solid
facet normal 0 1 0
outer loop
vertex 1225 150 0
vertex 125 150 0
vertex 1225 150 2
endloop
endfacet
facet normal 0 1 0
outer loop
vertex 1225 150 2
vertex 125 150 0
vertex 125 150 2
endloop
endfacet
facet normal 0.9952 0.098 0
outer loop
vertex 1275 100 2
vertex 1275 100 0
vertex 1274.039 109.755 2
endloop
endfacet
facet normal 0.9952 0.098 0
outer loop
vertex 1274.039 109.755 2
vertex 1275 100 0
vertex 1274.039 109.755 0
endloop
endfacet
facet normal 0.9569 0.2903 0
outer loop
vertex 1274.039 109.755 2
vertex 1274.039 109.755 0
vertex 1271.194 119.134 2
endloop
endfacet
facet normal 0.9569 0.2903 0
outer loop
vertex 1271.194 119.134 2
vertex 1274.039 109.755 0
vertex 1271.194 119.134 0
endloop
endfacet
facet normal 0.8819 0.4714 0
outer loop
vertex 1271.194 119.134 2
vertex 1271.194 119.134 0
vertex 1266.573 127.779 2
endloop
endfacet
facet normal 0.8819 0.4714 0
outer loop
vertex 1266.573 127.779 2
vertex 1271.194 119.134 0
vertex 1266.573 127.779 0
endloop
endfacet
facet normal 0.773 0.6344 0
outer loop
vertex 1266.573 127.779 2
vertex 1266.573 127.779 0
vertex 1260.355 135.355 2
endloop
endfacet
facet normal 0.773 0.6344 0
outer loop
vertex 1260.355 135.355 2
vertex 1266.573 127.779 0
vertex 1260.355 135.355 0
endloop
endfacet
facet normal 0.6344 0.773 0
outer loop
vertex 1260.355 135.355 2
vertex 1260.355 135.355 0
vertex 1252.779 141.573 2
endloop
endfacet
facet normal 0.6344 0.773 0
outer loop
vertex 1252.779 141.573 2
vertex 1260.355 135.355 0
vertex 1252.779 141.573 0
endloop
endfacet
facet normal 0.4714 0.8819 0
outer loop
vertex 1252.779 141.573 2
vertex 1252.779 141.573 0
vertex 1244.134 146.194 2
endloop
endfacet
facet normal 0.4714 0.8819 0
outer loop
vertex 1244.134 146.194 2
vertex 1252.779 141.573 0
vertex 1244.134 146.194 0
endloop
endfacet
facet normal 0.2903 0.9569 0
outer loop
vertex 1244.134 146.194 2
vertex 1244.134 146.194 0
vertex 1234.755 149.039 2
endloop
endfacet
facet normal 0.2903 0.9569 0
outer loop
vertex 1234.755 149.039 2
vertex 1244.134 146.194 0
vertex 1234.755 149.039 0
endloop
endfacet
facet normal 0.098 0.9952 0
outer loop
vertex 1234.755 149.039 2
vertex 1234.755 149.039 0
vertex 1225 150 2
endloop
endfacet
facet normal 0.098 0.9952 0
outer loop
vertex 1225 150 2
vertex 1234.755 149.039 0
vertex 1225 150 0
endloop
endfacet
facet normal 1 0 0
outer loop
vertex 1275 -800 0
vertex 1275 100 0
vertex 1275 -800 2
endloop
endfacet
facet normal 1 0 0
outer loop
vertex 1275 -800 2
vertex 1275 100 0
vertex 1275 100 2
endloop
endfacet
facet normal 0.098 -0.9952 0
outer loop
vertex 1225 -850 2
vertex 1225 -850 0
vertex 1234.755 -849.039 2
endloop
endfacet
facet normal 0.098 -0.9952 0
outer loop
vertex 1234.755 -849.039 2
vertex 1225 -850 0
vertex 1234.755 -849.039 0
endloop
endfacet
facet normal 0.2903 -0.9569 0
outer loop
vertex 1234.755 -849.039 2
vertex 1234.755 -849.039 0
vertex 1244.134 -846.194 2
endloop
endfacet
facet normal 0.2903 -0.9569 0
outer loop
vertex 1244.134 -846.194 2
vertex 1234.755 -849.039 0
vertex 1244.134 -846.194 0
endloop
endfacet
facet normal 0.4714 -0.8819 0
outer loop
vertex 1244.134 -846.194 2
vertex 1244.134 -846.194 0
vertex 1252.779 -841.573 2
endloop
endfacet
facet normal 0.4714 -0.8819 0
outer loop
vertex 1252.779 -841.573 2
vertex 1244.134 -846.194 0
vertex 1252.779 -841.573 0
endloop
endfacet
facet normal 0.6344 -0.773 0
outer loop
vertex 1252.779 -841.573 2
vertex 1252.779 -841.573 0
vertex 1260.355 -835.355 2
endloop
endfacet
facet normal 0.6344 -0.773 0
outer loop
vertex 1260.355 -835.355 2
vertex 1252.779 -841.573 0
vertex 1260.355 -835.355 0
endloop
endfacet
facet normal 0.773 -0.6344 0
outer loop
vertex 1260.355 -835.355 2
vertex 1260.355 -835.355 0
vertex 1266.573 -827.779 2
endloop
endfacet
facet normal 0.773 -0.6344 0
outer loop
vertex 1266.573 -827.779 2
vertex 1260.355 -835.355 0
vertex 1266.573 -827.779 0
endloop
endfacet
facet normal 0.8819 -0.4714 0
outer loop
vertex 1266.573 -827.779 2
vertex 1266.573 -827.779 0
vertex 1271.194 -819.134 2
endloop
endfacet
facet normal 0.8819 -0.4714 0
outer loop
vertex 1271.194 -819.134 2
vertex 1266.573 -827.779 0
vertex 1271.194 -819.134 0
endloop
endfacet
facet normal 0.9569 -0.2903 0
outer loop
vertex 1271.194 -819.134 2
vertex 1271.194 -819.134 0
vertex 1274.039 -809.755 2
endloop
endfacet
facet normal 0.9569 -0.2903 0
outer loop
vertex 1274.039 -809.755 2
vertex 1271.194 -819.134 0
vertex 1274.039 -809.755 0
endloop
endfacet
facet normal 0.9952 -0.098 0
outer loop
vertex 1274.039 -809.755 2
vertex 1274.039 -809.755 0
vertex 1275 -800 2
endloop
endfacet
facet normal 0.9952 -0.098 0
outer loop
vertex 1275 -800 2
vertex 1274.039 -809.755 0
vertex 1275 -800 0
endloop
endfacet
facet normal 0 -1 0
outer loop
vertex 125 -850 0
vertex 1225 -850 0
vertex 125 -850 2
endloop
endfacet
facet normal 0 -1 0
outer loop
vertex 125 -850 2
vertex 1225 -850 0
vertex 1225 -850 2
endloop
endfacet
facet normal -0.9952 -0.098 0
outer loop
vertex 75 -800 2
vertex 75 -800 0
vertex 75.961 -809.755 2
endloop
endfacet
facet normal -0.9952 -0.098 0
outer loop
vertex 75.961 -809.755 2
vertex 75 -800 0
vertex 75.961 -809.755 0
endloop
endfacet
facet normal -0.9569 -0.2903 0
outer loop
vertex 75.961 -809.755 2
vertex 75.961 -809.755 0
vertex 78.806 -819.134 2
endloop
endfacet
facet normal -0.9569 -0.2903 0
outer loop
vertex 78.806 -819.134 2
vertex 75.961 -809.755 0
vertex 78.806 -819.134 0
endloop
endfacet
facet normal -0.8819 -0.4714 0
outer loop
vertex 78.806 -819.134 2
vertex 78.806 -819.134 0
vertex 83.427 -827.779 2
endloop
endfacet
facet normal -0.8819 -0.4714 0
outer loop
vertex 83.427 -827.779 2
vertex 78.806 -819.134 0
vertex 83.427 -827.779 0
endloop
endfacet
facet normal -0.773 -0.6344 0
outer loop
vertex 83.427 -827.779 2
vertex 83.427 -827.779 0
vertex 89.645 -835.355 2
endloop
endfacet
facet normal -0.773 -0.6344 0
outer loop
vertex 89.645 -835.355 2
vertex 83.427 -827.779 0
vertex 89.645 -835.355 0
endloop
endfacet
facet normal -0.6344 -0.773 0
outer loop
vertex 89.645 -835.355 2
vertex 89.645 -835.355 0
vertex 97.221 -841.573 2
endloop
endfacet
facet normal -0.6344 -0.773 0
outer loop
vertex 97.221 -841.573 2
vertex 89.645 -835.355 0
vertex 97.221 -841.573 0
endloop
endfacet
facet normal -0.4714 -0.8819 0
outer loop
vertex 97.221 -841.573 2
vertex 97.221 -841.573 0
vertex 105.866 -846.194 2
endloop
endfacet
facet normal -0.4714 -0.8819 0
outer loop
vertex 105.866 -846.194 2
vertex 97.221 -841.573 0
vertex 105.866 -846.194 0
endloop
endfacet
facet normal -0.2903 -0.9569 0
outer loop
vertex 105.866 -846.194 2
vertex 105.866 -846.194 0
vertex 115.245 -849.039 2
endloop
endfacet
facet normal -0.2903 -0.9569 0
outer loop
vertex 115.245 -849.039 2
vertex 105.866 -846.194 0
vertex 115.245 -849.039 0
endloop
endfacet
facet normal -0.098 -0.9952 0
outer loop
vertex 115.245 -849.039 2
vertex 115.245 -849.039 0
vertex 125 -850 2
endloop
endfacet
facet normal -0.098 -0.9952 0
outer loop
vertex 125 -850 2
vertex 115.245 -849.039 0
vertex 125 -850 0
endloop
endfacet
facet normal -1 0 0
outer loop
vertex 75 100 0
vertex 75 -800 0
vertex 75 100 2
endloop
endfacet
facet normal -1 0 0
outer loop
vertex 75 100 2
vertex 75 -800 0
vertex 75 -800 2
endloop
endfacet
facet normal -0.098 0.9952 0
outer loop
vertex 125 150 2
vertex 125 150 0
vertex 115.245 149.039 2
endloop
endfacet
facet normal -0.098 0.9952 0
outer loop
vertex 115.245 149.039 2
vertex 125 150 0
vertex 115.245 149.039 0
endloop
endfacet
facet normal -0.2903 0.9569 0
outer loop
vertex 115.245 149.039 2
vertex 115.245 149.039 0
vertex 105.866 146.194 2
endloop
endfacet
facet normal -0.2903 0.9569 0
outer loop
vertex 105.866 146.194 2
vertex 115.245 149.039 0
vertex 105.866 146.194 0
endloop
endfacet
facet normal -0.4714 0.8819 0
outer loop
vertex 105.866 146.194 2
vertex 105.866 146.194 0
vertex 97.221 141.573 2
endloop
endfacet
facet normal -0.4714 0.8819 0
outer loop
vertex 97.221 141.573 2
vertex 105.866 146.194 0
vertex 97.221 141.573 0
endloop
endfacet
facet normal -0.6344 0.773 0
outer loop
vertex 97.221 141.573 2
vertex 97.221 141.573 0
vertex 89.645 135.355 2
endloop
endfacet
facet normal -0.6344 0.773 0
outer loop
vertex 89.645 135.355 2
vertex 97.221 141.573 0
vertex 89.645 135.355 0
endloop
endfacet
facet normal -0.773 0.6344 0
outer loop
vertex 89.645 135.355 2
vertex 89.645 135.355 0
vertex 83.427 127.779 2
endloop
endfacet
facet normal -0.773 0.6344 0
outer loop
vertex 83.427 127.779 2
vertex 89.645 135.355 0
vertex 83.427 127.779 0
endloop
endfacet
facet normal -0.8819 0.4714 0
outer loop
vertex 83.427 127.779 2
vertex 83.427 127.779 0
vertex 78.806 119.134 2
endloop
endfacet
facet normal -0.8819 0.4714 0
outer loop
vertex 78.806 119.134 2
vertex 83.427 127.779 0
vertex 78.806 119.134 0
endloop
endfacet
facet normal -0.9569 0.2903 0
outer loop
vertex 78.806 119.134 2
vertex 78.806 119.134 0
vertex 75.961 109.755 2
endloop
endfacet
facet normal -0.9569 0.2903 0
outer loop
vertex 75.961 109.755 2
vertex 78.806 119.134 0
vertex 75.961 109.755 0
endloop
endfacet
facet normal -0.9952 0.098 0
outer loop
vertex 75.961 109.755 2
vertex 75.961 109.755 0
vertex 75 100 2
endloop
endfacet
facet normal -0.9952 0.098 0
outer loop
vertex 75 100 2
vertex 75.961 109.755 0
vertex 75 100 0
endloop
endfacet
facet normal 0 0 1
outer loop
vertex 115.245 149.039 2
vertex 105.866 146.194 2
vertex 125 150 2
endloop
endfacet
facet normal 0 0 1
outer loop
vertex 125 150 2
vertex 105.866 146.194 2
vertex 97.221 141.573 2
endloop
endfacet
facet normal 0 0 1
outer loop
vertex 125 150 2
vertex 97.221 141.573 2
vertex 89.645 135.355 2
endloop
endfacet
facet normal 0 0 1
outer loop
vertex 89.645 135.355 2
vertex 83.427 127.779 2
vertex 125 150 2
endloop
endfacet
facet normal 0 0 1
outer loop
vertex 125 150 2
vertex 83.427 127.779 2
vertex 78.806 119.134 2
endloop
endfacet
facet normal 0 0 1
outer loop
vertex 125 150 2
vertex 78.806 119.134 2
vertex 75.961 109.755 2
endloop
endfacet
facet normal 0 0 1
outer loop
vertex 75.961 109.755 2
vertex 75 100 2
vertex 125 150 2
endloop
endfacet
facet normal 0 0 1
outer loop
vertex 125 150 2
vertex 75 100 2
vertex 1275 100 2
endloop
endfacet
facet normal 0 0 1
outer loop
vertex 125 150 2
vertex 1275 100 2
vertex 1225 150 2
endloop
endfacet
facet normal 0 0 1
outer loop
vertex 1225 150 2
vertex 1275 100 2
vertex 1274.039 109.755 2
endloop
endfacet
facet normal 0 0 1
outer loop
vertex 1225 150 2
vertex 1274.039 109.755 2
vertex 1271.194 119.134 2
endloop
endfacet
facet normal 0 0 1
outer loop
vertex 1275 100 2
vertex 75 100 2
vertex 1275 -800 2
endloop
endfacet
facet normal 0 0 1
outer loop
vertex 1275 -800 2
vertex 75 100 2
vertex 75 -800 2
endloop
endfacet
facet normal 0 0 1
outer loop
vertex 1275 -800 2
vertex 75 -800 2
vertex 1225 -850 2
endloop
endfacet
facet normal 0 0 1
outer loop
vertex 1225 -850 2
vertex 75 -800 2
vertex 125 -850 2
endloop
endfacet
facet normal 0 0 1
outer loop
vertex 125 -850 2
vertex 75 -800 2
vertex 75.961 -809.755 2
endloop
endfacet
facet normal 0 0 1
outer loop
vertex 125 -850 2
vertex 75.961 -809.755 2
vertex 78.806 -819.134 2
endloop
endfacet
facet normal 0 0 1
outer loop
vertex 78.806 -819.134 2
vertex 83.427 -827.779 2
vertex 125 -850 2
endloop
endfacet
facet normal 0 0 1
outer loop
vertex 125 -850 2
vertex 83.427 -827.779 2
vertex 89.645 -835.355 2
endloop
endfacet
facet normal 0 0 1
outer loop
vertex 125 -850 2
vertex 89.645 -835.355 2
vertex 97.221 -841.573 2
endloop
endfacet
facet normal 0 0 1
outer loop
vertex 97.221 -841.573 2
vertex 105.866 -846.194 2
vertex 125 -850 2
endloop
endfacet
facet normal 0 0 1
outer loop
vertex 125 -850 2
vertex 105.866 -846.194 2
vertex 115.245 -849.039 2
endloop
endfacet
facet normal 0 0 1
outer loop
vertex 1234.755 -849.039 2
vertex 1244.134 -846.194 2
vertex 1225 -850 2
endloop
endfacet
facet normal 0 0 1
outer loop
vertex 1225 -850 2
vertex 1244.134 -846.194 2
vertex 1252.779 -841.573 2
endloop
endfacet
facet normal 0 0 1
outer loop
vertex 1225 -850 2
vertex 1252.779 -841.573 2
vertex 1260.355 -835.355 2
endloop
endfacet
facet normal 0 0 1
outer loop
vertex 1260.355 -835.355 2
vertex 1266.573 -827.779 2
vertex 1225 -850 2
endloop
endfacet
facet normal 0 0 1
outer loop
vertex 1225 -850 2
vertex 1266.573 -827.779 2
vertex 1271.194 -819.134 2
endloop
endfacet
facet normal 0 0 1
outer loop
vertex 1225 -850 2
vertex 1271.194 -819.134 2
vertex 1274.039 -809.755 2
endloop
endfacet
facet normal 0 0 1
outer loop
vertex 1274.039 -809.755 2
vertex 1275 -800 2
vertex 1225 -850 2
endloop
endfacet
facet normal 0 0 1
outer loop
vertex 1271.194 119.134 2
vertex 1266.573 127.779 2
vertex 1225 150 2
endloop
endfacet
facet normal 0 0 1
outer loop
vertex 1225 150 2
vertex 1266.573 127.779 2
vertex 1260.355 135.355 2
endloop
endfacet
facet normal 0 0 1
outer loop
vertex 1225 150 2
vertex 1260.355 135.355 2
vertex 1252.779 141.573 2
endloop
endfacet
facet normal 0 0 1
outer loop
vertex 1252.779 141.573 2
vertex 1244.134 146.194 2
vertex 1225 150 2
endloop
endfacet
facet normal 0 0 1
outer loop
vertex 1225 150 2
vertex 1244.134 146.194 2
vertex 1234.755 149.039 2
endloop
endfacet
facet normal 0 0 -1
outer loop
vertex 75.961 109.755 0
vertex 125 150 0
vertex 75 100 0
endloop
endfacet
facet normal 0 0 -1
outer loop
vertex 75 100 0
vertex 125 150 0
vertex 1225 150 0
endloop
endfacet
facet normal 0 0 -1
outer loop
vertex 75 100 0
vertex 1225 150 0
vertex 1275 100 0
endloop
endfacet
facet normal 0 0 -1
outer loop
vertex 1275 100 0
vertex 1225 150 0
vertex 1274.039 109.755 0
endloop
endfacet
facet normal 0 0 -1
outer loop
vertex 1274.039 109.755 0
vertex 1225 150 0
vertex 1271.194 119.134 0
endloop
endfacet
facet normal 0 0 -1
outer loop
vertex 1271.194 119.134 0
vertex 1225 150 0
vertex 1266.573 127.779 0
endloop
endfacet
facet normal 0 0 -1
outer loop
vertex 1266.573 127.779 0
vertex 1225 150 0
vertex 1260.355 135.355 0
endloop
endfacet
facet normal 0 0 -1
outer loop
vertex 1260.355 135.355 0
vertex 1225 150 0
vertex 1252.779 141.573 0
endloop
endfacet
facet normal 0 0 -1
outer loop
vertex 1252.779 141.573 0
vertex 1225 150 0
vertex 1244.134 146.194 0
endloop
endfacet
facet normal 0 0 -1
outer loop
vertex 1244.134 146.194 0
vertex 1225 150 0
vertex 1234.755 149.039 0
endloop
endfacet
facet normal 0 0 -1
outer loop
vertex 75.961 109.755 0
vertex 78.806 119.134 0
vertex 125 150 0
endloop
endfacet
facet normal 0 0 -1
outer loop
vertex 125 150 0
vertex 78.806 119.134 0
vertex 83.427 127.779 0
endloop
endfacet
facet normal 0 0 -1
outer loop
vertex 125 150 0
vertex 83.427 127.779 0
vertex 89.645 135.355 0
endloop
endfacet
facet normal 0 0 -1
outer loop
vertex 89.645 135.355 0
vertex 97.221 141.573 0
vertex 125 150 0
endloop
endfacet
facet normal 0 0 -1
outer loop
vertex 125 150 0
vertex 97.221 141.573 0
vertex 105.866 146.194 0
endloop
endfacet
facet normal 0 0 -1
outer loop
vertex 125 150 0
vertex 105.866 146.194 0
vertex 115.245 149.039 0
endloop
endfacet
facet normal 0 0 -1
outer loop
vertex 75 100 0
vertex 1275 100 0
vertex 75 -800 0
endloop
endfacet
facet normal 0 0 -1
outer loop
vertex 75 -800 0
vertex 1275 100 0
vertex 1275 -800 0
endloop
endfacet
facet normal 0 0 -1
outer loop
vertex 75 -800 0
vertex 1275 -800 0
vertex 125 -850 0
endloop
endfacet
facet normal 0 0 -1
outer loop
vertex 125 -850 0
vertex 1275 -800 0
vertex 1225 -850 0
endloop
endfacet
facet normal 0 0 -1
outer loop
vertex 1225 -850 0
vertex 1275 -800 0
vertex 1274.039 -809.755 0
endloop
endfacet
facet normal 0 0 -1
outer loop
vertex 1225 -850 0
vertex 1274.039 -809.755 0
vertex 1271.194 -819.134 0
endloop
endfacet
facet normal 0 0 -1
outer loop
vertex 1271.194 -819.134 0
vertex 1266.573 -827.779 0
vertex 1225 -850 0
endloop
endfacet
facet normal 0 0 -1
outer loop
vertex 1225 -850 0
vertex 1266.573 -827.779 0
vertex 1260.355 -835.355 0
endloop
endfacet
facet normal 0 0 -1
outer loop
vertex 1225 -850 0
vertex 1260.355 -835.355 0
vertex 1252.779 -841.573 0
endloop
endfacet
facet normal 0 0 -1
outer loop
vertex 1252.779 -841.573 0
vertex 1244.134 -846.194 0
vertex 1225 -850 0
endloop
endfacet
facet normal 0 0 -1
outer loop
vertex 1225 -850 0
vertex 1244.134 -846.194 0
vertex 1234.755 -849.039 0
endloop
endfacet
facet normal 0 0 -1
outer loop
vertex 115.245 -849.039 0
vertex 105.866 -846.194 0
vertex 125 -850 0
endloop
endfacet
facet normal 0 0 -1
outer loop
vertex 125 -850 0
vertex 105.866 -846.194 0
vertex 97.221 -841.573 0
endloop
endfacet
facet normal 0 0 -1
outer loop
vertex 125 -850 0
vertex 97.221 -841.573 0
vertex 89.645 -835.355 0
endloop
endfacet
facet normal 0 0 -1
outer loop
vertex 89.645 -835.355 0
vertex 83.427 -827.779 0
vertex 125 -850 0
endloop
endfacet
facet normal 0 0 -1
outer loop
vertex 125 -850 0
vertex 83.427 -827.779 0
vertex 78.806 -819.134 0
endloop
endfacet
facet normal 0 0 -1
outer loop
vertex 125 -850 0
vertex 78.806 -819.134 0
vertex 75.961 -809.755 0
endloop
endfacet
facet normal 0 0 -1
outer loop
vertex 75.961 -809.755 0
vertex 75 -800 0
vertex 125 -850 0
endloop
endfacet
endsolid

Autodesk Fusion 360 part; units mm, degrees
sketch "Skizze1" plane through (0, 0, 0) normal (0, 0, 1) x (1, 0, 0)
  line L0 (125, 150) -> (1225, 150)
  line L1 (1275, 100) -> (1275, -800)
  line L2 (1225, -850) -> (125, -850)
  line L3 (75, -800) -> (75, 100)
  arc A0 (125, 150) -> (75, 100) centre (125, 100) ccw
  arc A1 (1275, 100) -> (1225, 150) centre (1225, 100) ccw
  arc A2 (1225, -850) -> (1275, -800) centre (1225, -800) ccw
  arc A3 (75, -800) -> (125, -850) centre (125, -800) ccw
  point P0 (75, 150)
  point P1 (1275, 150)
  point P2 (75, -850)
  dimension "d1" = 1200
  dimension "d2" = 1000
  dimension "d3" = 50
  dimension "d4" = 50
extrude "Extrusion1" add sketch "Skizze1" along normal blind 2
equation "d4 = d3"
